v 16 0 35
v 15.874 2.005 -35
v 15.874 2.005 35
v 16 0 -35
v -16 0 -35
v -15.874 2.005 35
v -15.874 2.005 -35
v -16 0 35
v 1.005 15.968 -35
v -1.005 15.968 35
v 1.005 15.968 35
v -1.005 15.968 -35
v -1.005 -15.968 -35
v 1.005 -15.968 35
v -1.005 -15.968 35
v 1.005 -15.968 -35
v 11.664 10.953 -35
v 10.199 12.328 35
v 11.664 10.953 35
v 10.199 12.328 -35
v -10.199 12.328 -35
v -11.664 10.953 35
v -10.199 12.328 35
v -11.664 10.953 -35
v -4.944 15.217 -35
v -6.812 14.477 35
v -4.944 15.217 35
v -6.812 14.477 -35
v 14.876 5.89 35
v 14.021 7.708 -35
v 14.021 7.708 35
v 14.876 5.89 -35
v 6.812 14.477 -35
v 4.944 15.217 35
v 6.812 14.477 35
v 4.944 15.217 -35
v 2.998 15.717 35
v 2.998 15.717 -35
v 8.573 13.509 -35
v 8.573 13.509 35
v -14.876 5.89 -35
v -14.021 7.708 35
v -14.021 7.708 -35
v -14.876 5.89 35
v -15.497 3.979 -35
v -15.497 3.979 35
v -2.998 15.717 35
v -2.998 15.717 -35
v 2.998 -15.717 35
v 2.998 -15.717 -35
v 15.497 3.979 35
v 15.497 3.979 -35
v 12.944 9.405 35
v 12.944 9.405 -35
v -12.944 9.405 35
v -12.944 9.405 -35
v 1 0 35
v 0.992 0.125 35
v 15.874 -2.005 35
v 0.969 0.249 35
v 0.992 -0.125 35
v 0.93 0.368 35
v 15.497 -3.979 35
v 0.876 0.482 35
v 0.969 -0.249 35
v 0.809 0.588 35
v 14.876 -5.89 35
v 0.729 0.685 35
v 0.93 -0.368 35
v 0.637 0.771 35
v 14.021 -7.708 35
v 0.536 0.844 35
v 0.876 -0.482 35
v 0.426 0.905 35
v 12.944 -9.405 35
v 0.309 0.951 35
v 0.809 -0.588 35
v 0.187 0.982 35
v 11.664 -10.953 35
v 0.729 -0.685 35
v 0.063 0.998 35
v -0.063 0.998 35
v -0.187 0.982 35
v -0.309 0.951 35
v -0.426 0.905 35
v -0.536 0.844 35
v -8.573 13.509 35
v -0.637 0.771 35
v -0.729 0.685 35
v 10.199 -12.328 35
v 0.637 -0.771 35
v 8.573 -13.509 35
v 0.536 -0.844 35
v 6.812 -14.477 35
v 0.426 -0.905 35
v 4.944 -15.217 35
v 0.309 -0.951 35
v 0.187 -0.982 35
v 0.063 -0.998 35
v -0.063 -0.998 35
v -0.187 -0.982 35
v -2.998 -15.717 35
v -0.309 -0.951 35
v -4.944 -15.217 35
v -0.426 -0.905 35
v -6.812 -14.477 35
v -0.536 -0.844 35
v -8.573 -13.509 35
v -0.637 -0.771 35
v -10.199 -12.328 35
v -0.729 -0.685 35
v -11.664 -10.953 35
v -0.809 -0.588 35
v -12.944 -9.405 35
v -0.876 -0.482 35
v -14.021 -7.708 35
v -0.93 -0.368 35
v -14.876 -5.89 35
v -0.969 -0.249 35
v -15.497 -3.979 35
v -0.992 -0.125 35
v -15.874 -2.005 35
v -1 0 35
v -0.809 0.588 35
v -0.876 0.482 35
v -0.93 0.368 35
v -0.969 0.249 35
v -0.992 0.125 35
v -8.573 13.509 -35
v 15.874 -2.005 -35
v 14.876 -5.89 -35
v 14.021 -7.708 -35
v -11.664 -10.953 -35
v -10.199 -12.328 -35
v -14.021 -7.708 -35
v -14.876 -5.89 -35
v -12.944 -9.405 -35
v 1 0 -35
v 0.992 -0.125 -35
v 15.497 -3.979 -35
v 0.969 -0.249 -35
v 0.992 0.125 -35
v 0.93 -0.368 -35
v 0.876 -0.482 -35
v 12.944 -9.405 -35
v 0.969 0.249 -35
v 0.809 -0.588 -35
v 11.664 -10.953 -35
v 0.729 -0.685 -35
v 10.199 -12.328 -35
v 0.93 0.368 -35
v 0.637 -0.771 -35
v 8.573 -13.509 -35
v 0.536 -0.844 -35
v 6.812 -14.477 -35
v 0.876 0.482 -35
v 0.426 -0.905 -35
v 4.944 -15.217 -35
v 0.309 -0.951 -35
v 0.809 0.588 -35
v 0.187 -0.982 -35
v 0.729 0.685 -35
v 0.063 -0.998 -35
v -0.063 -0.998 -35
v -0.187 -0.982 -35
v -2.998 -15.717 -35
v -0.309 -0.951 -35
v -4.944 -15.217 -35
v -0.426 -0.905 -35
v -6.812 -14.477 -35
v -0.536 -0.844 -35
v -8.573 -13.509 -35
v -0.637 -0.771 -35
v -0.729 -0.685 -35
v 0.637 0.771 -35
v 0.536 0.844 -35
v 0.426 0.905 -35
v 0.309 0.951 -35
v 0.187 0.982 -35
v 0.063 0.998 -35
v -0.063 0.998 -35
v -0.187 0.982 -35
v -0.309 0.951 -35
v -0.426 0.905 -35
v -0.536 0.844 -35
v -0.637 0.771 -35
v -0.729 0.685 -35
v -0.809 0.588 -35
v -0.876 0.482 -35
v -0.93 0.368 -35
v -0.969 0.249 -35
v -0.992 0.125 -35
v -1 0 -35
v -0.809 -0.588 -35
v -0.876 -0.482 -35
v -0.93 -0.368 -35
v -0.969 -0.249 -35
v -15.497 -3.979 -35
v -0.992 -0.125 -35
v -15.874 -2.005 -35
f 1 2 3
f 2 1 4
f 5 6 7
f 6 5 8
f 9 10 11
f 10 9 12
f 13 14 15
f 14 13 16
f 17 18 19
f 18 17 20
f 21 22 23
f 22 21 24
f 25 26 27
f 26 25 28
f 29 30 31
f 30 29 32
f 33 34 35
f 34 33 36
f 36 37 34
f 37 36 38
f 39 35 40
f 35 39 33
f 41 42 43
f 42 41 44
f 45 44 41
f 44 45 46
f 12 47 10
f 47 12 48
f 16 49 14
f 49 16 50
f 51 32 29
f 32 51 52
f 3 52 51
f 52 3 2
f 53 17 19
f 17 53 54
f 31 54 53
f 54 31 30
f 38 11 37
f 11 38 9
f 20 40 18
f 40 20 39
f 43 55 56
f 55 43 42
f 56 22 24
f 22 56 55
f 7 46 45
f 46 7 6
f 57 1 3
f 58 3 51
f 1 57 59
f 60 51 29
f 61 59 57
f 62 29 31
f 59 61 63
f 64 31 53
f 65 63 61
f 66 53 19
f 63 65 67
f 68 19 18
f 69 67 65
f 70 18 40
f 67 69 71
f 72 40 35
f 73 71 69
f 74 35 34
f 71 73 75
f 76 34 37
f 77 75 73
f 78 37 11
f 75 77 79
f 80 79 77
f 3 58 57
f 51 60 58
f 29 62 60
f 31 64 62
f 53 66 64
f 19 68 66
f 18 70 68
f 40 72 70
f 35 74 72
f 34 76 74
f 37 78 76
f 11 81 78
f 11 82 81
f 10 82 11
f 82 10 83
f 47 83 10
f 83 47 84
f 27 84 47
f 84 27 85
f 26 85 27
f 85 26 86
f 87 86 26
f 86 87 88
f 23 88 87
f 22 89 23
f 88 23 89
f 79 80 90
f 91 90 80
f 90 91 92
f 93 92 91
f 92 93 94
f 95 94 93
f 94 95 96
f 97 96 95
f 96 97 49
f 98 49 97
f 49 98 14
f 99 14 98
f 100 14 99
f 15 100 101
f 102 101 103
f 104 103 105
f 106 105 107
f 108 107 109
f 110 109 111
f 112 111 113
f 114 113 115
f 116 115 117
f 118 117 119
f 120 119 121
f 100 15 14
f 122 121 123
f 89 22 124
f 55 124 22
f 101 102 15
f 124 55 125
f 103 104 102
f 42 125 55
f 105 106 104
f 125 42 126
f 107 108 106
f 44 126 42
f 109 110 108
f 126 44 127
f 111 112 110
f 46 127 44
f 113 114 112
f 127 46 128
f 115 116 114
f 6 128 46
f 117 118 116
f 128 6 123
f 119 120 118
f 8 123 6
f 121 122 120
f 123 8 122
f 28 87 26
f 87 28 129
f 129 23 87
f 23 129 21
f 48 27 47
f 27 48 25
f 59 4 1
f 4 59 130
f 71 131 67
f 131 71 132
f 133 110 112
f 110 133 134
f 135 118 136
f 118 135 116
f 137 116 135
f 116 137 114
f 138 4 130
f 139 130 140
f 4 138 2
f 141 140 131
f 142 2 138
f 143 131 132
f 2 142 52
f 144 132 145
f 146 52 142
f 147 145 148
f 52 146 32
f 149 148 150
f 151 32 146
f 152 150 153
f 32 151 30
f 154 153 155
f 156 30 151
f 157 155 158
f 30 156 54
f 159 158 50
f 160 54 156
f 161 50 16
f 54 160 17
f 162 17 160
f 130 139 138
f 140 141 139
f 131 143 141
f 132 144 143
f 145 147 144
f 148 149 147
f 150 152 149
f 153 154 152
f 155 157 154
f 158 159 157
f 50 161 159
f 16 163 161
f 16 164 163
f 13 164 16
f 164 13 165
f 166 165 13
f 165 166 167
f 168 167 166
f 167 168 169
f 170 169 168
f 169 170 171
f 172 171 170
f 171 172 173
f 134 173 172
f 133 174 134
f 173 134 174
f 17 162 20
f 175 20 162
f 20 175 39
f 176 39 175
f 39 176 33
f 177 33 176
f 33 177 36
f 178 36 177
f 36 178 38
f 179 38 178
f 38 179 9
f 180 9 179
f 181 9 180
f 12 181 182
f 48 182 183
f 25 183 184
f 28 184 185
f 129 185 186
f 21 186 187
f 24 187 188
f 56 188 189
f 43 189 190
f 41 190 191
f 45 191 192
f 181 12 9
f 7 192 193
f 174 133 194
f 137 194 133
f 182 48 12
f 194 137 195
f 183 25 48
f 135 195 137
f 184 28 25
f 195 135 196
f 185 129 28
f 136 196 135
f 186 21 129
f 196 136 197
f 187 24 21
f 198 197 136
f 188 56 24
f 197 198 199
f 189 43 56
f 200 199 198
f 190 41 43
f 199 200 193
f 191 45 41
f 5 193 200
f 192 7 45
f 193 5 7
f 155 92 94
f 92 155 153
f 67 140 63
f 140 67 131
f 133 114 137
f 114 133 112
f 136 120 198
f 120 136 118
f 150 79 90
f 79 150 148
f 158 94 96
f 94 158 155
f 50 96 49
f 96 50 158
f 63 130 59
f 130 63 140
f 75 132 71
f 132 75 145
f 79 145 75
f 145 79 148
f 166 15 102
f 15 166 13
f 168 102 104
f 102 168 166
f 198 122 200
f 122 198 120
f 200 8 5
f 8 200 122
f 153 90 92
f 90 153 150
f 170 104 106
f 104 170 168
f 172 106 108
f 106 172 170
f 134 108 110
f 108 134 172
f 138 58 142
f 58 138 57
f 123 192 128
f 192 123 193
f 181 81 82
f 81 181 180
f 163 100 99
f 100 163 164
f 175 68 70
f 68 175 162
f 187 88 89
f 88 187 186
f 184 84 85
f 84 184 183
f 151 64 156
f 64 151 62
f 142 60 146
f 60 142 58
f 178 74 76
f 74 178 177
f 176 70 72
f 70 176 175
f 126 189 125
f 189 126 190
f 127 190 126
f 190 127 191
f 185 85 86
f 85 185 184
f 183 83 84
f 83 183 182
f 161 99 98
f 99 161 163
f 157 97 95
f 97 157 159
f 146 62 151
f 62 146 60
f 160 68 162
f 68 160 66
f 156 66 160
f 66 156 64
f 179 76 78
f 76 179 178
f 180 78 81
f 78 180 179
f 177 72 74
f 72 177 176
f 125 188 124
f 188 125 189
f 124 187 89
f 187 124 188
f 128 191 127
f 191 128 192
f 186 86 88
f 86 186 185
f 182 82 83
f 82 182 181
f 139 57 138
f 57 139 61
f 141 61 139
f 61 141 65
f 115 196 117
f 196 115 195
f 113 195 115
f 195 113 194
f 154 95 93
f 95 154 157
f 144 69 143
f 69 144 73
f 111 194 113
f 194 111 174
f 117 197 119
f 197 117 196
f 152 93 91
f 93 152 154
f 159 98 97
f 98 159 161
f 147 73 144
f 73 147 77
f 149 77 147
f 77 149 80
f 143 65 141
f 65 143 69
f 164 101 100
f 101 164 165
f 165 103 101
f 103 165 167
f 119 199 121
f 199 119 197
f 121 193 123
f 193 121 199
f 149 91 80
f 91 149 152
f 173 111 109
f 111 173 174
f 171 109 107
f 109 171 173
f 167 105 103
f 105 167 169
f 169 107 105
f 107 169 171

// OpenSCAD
$fn = 50;


difference() {
	union() {
		translate(v = [0, 0, -35.0000000000]) {
			cylinder(h = 70, r = 16.0000000000);
		}
	}
	union() {
		translate(v = [0, 0, -100.0000000000]) {
			cylinder(h = 200, r = 1.0000000000);
		}
	}
}
